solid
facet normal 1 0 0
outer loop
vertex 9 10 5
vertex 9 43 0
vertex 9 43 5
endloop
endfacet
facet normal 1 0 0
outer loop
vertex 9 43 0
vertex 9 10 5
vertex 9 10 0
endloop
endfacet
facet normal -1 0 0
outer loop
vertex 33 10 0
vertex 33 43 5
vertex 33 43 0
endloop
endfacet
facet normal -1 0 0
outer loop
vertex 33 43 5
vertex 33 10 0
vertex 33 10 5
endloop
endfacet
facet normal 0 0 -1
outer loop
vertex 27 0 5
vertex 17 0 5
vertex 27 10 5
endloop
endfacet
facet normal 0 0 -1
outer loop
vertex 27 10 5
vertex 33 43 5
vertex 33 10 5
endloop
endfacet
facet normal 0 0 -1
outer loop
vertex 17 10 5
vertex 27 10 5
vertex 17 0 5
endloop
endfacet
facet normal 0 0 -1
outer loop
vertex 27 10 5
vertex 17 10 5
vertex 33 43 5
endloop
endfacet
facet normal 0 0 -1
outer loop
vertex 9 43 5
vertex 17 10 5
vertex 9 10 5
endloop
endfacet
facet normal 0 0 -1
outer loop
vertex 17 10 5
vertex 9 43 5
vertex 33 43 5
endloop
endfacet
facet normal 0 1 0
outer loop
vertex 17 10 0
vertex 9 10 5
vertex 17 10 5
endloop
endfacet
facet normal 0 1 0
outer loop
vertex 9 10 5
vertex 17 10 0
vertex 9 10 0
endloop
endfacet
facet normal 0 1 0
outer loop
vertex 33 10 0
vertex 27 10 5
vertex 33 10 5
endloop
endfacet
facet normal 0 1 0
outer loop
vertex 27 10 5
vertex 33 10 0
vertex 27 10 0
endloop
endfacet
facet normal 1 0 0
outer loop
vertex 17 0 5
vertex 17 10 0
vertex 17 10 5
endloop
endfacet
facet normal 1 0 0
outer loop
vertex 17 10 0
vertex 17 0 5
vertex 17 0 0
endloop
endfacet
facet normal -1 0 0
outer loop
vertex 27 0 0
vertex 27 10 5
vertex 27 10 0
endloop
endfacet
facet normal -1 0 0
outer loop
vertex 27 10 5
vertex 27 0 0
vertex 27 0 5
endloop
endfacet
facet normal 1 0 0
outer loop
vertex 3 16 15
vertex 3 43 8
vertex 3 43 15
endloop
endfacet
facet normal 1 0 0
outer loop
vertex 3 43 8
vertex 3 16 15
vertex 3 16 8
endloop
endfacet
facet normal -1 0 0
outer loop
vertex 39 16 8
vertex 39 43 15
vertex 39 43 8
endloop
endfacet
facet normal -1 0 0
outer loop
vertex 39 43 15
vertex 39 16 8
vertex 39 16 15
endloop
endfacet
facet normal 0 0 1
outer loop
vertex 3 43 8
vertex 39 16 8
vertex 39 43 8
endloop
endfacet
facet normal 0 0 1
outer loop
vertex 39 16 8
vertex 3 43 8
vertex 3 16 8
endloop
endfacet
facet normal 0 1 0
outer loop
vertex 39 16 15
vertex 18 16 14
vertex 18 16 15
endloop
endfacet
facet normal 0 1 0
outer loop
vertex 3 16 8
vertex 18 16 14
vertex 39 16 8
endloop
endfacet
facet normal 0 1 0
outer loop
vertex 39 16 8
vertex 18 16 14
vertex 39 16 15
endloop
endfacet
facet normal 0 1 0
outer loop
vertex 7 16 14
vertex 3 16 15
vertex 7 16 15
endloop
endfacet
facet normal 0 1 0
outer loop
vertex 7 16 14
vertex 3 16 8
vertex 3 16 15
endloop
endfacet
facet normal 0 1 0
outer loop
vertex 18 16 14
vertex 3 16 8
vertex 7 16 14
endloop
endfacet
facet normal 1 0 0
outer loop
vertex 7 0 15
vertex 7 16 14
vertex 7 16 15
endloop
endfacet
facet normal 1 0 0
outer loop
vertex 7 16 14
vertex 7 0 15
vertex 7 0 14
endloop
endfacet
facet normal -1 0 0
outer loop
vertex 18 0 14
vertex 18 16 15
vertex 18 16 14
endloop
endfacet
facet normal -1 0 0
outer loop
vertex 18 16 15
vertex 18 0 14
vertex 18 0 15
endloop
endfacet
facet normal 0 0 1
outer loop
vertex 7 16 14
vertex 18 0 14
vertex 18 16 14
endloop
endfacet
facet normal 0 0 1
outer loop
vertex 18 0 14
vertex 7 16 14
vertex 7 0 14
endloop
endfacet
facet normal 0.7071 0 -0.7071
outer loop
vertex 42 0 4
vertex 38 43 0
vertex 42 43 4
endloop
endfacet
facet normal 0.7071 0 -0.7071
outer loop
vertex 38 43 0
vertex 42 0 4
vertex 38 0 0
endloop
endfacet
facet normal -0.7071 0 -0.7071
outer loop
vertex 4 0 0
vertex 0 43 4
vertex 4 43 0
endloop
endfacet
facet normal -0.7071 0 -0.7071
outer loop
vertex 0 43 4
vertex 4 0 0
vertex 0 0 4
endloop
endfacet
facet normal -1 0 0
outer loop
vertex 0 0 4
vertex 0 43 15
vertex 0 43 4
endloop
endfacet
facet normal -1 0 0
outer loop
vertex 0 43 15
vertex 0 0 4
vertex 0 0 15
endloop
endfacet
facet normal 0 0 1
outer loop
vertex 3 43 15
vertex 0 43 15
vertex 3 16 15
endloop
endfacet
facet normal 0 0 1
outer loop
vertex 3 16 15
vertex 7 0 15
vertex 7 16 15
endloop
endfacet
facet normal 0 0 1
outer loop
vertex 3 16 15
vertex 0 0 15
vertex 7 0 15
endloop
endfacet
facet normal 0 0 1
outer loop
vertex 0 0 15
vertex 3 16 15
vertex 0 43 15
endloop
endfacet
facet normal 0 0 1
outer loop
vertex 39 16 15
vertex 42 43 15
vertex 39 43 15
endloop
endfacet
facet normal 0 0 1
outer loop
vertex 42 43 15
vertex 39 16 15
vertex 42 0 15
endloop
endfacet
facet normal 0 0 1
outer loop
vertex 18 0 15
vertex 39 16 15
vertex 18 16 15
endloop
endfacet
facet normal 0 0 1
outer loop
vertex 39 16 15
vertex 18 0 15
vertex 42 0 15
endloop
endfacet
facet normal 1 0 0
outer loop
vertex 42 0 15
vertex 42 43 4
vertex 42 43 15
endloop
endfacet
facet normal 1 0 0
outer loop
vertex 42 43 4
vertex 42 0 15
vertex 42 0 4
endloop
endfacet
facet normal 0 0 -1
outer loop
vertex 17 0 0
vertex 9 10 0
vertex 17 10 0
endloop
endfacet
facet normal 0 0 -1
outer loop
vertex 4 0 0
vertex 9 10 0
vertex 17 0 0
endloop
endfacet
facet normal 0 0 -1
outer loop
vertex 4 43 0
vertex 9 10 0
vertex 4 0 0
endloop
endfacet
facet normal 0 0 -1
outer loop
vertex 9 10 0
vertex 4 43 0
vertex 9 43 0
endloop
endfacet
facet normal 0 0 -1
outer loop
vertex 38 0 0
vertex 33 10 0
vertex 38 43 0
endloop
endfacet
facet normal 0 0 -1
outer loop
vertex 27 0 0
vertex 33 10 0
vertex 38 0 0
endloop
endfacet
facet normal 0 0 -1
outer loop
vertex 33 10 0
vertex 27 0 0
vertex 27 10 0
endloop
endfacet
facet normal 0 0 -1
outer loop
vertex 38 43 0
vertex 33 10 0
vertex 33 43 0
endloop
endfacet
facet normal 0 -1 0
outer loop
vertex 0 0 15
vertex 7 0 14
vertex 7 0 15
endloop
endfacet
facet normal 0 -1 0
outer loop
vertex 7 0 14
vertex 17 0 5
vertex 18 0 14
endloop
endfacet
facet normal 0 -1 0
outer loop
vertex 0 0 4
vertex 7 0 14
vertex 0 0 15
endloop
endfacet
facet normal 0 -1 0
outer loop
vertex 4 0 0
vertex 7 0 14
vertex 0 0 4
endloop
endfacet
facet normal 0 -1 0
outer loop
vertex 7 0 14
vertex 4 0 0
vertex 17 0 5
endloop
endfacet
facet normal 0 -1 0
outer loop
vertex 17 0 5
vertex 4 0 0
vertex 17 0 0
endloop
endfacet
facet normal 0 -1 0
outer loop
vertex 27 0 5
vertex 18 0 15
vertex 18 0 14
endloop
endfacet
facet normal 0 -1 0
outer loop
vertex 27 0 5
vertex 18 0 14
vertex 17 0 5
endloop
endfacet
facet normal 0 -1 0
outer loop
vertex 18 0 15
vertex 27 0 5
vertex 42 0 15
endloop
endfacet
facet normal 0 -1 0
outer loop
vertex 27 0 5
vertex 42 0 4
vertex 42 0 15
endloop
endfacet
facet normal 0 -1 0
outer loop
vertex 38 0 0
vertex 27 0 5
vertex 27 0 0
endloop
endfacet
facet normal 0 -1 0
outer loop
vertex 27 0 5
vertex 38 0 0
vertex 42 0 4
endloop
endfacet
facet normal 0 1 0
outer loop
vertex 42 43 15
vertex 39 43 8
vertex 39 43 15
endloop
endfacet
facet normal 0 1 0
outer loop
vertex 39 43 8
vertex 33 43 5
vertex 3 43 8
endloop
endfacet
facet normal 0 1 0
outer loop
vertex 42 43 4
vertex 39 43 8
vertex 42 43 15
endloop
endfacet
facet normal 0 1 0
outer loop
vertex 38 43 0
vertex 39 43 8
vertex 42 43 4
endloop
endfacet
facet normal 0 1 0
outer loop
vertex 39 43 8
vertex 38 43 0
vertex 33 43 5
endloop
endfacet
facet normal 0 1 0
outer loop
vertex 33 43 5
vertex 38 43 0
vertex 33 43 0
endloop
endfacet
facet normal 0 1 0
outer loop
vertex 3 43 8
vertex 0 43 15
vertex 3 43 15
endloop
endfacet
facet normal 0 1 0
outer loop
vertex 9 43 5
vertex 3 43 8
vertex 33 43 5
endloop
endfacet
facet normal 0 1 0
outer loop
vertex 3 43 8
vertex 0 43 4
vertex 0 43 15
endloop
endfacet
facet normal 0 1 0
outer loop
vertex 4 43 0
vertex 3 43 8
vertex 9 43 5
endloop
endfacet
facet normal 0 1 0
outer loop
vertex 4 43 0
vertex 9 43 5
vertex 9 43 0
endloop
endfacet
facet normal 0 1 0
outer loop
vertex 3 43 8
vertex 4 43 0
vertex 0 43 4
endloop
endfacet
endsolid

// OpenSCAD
module vtx(size, antennaDimensions, antennaOffsetX)
{
    translate([0,size[1] + antennaDimensions[1],size[2]])
    rotate(180, [1,0,0])
    {
        cube(size);

        translate([antennaOffsetX, size[1], 0])
        cube(antennaDimensions);
    }
}
module camera(size, lensLength, lensDiameter, lensOffset)
{
    USB_WIDTH = 11;
    USB_LENGTH = 25;
    USB_HEIGHT = 9;
    USB_OFFSET = 4;
    USB_OFFSET_HEIGHT = 6;

    cube(size)

    translate([lensOffset + lensDiameter, size[1],size[2]/2])
    rotate(-90, [1,0,0])
    cylinder(h=lensLength, d=lensDiameter);

    translate([USB_OFFSET, -USB_LENGTH, USB_OFFSET_HEIGHT])
    cube([USB_WIDTH, USB_LENGTH, USB_HEIGHT]);
}


OUTSIDE_SIZE = [42, 43, 15];

VTX_SIZE = [24, 50, 10];
VTX_ANTENNA_DIM = [10, 25, 10];
VTX_ANTENNA_OFFSET = 8;

CAMERA_SIZE = [36, 60, 19];
CAMERA_LENS_DIA = 18;
CAMERA_LENS_HEIGHT = 10;
CAMERA_LENS_OFFSET = 4;

MIDDLE_THICKNESS = 3;

Y_OFFSET = VTX_SIZE[2] / 2;

VTX_OFFSET = -15;
CAMERA_OFFSET = 1 - VTX_OFFSET;

CHAMFER_DISTANCE = 4;

difference()
{
    cube(OUTSIDE_SIZE);
    
    translate([0, VTX_OFFSET, 0])
    translate([OUTSIDE_SIZE[0] / 2 -VTX_SIZE[0] / 2, 0, 0])
    translate([0,0,-Y_OFFSET])
    vtx(VTX_SIZE, VTX_ANTENNA_DIM, VTX_ANTENNA_OFFSET);

    translate([0, CAMERA_OFFSET, 0])
    translate([OUTSIDE_SIZE[0] / 2 - CAMERA_SIZE[0] / 2, 0, 0])
    translate([0,0,VTX_SIZE[2] + MIDDLE_THICKNESS - Y_OFFSET])
    camera(CAMERA_SIZE, CAMERA_LENS_HEIGHT, CAMERA_LENS_DIA, CAMERA_LENS_OFFSET);

    //chamfer
    translate([OUTSIDE_SIZE[0] / 2, -1, 0])
    for(i = [0,1])
    {
        mirror([i,0,0])
        {
            translate([OUTSIDE_SIZE[0] / 2 - CHAMFER_DISTANCE, 0, 0])
            rotate(45, [0,1,0])
            cube([OUTSIDE_SIZE[0] * 2, OUTSIDE_SIZE[1] * 2, OUTSIDE_SIZE[0] * 2]);
        }
    }
}
